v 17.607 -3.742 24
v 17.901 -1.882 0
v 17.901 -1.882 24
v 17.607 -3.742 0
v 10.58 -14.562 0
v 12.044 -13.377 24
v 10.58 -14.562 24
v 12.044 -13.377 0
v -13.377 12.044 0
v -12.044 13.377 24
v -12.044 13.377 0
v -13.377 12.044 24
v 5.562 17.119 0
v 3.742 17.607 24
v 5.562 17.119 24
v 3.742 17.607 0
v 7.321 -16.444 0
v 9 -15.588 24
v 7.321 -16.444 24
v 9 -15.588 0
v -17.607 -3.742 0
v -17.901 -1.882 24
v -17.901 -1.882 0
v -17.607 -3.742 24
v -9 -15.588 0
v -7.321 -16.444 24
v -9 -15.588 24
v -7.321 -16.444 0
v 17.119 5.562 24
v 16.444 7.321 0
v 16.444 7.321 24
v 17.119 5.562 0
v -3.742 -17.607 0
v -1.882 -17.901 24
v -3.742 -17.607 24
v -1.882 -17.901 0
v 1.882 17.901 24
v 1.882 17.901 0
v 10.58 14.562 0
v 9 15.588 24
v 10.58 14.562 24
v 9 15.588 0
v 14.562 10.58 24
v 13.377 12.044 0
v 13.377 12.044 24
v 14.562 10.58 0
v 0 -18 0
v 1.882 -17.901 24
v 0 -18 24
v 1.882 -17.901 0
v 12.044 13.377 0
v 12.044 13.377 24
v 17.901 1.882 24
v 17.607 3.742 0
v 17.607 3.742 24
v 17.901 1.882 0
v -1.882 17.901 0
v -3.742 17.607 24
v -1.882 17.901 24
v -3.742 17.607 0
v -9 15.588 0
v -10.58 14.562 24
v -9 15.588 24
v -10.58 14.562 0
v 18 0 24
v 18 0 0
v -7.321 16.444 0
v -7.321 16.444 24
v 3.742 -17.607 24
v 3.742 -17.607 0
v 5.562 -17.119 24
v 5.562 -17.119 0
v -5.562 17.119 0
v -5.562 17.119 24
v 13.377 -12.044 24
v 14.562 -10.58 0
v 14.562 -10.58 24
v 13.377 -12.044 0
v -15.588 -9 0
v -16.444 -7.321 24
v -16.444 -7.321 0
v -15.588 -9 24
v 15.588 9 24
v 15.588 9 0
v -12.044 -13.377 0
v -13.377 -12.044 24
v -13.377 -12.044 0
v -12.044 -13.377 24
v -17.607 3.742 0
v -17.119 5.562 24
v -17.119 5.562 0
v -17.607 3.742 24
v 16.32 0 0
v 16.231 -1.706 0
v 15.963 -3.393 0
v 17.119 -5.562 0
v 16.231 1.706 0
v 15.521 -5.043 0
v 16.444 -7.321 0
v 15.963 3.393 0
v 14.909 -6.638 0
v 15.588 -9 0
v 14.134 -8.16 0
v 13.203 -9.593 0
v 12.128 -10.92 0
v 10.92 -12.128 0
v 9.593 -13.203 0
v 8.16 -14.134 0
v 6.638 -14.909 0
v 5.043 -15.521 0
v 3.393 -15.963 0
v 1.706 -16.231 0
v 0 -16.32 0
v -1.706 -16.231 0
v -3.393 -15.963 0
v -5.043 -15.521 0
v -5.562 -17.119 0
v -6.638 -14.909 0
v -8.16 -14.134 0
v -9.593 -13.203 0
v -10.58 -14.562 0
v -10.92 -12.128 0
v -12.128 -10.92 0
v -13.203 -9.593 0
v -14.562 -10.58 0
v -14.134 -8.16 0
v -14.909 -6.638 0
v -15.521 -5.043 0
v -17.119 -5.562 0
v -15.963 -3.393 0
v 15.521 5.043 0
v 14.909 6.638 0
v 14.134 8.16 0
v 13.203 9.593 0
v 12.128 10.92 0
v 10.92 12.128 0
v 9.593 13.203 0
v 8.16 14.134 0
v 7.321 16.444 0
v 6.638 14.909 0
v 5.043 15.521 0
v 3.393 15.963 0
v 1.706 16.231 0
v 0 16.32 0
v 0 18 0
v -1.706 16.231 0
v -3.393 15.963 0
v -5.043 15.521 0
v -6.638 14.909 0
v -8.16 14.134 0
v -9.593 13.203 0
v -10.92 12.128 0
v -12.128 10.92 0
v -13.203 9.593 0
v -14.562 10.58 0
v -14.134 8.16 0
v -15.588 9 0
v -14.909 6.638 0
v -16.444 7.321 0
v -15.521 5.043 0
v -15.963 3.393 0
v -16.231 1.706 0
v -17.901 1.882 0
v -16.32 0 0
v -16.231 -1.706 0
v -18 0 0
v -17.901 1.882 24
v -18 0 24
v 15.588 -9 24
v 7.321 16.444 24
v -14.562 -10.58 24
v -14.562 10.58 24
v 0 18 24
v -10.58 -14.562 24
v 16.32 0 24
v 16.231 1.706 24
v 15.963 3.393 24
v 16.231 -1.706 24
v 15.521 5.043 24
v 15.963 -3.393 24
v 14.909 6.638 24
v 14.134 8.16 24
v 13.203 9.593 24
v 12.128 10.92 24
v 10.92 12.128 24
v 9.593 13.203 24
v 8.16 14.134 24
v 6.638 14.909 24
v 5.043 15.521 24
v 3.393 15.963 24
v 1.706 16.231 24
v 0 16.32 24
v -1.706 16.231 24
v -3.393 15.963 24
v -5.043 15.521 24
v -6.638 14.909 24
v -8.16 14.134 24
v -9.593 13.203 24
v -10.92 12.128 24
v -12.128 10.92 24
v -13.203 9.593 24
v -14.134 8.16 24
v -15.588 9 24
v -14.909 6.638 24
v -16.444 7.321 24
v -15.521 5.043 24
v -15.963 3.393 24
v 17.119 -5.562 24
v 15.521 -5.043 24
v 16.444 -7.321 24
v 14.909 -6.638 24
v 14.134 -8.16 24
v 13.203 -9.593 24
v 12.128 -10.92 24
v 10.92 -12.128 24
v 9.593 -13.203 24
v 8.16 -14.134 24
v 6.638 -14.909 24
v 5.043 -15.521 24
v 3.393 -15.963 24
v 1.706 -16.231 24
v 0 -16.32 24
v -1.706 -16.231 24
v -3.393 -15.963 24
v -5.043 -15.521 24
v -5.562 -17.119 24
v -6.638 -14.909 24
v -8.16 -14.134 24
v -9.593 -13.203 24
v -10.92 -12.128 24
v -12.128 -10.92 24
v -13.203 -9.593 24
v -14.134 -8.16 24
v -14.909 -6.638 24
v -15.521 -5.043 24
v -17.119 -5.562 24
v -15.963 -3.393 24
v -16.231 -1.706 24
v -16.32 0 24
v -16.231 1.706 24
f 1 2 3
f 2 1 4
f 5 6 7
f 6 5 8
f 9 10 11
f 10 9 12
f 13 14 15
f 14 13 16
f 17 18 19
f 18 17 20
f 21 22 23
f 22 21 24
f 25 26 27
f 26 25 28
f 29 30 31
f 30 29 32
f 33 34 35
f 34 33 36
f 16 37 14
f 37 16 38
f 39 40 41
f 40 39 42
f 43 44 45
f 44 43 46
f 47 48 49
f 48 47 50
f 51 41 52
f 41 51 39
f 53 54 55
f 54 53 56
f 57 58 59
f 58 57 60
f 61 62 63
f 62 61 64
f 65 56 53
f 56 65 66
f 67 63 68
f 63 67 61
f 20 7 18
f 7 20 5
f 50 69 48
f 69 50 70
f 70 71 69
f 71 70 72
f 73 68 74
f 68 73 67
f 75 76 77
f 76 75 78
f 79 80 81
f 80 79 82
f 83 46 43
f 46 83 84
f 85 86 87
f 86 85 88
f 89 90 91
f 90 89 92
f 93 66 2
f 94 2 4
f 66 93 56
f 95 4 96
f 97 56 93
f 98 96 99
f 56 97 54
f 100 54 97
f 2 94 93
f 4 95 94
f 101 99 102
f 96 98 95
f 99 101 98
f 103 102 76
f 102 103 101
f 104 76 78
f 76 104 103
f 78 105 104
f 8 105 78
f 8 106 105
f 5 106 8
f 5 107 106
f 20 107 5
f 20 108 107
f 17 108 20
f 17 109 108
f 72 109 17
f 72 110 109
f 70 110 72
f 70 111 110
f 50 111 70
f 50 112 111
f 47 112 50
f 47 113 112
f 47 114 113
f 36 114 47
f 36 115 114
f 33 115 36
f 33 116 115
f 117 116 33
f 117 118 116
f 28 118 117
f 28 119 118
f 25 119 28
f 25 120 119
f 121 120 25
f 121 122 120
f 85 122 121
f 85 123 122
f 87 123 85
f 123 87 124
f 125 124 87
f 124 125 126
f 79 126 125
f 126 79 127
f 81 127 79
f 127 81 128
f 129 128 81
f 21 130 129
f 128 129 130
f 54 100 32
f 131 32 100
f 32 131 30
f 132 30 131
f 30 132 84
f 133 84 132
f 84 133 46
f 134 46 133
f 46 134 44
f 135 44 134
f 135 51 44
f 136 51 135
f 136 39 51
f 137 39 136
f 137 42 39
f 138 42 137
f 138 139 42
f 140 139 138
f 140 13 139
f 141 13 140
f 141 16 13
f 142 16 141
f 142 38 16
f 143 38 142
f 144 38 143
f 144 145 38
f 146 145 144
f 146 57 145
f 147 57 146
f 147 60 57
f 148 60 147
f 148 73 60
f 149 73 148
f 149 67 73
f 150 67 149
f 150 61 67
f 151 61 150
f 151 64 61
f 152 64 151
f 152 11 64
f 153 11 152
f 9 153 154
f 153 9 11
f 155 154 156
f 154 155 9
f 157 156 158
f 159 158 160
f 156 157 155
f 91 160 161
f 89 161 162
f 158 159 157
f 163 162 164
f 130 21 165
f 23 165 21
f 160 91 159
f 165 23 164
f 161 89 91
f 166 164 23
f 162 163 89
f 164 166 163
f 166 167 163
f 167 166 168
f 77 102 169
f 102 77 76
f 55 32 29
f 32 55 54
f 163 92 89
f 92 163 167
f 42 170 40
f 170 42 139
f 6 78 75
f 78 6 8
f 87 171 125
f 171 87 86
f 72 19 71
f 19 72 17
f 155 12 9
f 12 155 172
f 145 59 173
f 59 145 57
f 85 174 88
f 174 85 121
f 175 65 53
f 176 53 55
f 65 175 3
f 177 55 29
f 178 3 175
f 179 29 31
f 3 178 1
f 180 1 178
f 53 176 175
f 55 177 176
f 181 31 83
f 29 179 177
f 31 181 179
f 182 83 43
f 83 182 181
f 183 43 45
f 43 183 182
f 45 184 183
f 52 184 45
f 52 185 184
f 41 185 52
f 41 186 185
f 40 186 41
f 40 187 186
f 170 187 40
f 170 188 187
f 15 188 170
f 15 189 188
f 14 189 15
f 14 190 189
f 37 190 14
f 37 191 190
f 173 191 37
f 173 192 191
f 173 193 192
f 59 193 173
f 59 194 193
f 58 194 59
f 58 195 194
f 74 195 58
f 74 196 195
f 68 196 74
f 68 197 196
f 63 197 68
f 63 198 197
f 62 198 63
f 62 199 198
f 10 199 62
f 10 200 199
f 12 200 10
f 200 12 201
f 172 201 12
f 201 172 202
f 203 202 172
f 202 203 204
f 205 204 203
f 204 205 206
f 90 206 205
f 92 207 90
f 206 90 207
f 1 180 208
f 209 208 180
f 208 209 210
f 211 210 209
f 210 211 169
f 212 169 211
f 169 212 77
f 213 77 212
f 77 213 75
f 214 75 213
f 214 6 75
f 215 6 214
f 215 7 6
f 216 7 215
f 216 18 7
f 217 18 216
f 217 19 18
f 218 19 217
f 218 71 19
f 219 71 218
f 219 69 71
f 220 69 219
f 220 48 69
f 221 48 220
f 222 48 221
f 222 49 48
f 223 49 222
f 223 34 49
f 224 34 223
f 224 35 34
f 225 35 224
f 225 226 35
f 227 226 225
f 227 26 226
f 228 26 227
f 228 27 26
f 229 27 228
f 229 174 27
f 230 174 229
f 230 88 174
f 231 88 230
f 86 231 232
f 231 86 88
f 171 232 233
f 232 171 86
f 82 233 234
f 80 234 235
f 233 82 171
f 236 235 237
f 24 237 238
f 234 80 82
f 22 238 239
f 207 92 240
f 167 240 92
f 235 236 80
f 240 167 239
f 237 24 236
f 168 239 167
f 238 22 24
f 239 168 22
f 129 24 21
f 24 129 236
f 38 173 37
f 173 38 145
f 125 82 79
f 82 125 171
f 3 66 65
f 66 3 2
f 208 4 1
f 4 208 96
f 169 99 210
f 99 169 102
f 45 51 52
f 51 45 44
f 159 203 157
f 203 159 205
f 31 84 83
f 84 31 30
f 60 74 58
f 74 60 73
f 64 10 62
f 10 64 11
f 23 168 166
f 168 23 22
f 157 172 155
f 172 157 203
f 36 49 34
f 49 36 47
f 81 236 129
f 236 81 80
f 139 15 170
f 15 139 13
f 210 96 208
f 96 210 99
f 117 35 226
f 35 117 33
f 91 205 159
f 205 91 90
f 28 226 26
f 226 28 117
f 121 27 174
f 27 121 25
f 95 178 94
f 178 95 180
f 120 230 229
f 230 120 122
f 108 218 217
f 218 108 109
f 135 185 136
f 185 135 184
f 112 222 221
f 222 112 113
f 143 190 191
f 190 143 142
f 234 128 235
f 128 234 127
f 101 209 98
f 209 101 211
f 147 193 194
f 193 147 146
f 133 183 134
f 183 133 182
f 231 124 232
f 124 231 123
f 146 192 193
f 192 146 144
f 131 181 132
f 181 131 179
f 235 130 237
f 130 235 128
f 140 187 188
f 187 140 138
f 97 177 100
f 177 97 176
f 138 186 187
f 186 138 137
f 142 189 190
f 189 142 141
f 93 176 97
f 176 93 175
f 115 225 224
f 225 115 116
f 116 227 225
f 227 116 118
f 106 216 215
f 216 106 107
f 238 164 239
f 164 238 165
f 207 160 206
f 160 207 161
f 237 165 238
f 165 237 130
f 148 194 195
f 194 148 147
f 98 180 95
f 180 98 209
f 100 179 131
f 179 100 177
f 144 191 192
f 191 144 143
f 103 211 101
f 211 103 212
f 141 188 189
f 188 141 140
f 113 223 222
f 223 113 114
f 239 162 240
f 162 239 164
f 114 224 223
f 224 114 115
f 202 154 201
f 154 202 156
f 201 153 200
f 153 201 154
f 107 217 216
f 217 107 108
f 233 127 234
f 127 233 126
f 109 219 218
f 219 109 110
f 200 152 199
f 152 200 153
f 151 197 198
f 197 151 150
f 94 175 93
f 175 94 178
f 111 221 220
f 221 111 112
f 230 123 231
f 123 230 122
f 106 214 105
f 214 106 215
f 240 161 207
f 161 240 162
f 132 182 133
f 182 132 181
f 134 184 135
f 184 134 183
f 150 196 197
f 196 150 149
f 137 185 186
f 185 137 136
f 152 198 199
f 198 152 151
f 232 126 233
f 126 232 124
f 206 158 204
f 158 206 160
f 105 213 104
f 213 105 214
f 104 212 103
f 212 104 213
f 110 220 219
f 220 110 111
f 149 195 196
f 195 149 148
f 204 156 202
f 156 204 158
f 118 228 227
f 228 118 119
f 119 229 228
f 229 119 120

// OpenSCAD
// optical head for electrometer. gas meter, water meter
// With magnet from unimagnet 
// parameters
$fn=60;
stena = 2;
dmagout = 32;
dmagin = 15.8;
hmag = 3;
// vyska drzaku LED
hdrz = 8;
// vyska vyvodni casti
hvyvod = 14;
dkabel = 5.5;
dout = dmagout;
vout = dmagout+2*stena;

module ledconn() {
    difference() {
         union() {
              cylinder(d=dout,h=hdrz);
             }
         union() {
//              translate([3.25,0,0]) cylinder(d=5.2,h=hdrz+stena);
//              translate([-3.25,0,0]) cylinder(d=5.2,h=hdrz+stena);
             translate([0,0,0]) cylinder(d=dout-3*stena,h=hdrz+stena);
             }    
        }
    
}

module connector() {
    difference() {
         union() {
          cylinder(d=vout,h=3*hdrz);   
         }
         union() {
           cylinder(d=1.02*dmagout,h=3*hdrz);
         }
        }
}

connector();
//translate([0,0,hdrz]) ledconn();
